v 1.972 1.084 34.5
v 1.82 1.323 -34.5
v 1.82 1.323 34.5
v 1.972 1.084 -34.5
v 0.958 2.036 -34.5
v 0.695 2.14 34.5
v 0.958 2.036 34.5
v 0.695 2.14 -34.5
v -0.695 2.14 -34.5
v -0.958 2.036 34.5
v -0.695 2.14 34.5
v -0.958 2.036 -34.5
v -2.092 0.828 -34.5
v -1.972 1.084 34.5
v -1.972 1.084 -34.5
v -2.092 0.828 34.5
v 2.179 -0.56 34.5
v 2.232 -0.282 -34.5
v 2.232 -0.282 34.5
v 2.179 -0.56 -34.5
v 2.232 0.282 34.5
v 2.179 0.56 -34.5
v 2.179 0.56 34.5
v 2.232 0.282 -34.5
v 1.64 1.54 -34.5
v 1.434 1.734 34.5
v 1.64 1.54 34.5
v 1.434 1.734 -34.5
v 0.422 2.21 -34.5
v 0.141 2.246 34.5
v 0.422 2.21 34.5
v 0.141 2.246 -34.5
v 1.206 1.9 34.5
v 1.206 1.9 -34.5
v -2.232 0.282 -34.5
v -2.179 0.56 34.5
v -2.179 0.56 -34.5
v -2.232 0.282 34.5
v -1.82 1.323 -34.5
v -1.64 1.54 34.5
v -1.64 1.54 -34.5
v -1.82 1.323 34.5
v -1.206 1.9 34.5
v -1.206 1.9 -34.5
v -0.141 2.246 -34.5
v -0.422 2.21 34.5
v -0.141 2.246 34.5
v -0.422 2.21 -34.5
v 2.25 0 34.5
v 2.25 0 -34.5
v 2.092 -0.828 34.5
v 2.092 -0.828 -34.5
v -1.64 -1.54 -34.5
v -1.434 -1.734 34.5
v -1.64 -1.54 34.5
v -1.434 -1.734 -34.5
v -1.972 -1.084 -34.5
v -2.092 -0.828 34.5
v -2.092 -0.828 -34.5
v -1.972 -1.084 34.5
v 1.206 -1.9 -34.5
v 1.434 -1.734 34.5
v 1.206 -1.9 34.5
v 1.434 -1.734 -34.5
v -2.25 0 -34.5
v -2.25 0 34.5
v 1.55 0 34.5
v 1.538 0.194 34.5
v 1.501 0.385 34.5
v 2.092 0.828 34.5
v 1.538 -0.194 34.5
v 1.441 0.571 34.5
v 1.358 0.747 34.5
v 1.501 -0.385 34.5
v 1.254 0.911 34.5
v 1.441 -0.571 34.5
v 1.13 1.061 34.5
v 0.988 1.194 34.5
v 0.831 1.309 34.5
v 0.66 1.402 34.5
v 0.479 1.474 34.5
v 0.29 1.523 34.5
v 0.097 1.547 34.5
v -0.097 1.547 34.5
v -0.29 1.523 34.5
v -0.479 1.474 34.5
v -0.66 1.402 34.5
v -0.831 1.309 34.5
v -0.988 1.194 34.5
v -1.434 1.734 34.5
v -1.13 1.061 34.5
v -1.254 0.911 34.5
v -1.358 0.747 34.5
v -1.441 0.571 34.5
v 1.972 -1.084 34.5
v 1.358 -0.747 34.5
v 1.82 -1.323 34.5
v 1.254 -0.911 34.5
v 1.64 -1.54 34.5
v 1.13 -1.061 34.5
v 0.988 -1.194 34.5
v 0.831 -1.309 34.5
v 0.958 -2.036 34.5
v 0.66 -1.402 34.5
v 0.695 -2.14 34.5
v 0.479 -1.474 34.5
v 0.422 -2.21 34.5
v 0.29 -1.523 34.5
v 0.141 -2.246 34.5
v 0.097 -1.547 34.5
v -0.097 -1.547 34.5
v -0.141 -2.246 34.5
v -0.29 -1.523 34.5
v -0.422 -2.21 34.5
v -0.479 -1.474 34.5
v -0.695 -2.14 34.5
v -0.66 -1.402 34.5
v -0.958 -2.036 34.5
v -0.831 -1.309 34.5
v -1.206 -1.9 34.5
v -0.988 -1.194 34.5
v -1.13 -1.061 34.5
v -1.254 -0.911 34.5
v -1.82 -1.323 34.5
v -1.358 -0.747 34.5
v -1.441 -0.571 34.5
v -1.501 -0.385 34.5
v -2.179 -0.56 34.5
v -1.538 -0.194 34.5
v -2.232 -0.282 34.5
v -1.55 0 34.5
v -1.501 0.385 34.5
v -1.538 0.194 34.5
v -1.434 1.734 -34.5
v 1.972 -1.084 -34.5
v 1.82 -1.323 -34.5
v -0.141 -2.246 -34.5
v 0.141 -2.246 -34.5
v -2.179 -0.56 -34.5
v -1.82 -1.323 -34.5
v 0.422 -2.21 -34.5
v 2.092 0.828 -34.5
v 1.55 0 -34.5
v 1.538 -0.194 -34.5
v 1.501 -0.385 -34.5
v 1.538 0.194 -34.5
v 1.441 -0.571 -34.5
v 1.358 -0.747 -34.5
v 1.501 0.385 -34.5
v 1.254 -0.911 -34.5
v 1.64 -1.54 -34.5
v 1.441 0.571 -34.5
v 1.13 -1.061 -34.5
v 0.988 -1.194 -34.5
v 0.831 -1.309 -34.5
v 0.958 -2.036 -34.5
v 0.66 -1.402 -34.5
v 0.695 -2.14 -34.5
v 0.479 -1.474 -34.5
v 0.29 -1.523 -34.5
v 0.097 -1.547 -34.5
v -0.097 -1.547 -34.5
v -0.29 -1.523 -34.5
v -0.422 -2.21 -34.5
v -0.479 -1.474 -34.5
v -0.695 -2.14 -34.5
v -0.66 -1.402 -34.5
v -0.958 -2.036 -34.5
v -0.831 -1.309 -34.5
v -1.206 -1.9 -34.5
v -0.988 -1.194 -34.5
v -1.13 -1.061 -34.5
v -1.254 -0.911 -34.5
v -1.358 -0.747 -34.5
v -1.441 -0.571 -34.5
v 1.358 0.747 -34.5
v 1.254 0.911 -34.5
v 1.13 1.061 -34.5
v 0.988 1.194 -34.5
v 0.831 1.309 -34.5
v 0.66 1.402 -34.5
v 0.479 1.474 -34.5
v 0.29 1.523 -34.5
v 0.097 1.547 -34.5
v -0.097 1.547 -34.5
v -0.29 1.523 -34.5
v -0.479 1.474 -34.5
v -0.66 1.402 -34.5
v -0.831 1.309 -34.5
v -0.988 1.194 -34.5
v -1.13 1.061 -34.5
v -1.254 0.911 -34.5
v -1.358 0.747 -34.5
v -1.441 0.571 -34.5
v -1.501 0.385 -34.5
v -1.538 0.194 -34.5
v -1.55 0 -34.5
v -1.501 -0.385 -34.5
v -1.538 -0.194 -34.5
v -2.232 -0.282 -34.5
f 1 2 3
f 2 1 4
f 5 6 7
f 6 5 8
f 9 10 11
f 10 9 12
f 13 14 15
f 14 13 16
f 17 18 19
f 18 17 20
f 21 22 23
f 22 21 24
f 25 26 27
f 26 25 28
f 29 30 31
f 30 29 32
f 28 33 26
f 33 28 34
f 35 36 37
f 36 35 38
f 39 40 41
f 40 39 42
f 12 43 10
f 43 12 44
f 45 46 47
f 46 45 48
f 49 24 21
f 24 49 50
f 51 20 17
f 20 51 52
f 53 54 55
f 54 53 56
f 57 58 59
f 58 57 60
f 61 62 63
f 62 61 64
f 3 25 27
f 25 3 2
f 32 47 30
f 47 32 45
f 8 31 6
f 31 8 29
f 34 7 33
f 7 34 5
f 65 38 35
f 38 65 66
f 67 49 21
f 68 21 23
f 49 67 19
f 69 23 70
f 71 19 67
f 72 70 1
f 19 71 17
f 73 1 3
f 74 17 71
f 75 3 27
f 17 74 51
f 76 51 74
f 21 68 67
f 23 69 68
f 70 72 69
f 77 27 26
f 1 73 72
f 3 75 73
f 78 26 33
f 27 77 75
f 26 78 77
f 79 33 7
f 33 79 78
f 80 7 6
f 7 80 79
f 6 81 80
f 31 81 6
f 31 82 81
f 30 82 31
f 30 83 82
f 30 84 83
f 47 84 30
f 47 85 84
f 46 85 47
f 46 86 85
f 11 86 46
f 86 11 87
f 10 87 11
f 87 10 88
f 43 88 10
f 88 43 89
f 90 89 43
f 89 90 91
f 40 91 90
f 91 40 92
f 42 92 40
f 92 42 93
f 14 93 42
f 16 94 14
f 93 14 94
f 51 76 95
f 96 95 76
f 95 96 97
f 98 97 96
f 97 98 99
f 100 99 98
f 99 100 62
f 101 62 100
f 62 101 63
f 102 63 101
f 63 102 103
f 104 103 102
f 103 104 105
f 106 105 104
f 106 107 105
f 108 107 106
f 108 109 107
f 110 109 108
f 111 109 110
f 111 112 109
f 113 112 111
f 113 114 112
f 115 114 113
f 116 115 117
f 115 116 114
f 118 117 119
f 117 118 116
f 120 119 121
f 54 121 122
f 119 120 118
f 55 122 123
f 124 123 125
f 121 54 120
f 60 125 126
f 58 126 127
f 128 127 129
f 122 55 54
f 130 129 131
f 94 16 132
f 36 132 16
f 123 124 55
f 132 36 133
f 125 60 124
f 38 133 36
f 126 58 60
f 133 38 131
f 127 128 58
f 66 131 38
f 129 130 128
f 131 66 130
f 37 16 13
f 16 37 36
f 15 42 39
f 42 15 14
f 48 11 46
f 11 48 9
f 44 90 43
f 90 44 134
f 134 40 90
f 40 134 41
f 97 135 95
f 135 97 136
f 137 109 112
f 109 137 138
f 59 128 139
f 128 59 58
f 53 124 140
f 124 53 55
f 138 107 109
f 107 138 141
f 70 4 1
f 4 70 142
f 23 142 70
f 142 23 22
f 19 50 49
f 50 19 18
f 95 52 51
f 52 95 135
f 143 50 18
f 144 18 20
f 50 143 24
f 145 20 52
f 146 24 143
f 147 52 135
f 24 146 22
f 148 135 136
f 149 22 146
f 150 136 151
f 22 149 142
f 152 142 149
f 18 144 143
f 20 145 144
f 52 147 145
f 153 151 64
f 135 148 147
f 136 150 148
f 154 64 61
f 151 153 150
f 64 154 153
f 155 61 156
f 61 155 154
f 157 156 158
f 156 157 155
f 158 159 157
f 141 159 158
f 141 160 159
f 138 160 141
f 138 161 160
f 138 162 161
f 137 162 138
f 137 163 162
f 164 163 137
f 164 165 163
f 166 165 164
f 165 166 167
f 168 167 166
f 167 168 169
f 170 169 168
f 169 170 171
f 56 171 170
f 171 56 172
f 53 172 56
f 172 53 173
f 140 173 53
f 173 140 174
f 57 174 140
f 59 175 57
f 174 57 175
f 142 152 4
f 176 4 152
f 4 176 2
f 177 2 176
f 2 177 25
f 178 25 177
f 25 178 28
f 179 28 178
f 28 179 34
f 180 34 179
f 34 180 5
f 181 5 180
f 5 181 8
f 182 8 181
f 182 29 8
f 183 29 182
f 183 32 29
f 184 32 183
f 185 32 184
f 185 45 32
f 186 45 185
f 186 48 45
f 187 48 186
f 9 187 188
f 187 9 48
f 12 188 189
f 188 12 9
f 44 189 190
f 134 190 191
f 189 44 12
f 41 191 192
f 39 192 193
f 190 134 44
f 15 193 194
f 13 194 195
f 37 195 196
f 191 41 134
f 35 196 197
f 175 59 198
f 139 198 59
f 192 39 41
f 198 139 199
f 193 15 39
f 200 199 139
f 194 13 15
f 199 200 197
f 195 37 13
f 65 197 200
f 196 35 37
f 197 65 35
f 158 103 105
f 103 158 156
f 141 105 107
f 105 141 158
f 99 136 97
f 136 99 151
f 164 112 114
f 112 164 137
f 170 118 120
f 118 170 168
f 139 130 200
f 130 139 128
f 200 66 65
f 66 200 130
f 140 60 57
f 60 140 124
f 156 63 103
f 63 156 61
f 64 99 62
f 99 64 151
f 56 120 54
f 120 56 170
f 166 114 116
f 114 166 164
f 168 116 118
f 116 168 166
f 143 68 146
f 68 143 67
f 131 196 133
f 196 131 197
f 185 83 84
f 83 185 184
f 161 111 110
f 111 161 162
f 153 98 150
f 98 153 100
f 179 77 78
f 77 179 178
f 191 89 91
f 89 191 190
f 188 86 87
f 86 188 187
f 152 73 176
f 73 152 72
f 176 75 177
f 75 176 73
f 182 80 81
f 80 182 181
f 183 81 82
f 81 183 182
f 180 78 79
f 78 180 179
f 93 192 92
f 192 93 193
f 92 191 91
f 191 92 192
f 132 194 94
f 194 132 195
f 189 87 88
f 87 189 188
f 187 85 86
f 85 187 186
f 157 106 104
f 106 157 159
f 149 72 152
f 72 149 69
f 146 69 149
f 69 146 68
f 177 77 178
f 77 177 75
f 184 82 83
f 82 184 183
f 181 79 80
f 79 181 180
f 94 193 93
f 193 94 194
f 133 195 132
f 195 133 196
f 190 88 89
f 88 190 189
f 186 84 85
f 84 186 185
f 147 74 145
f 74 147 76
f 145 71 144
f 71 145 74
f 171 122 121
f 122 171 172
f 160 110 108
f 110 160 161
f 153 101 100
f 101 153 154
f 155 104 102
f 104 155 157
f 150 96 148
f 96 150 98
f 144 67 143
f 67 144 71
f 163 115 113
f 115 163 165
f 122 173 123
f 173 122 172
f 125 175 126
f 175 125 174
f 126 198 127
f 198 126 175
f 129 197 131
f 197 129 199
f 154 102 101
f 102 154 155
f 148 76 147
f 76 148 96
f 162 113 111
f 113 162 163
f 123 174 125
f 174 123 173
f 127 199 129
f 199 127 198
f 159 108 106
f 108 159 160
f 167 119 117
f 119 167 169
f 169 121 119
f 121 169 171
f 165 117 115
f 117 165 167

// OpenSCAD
$fn = 50;


difference() {
	union() {
		translate(v = [0, 0, -34.5000000000]) {
			cylinder(h = 69, r = 2.2500000000);
		}
	}
	union() {
		translate(v = [0, 0, -100.0000000000]) {
			cylinder(h = 200, r = 1.5500000000);
		}
	}
}
